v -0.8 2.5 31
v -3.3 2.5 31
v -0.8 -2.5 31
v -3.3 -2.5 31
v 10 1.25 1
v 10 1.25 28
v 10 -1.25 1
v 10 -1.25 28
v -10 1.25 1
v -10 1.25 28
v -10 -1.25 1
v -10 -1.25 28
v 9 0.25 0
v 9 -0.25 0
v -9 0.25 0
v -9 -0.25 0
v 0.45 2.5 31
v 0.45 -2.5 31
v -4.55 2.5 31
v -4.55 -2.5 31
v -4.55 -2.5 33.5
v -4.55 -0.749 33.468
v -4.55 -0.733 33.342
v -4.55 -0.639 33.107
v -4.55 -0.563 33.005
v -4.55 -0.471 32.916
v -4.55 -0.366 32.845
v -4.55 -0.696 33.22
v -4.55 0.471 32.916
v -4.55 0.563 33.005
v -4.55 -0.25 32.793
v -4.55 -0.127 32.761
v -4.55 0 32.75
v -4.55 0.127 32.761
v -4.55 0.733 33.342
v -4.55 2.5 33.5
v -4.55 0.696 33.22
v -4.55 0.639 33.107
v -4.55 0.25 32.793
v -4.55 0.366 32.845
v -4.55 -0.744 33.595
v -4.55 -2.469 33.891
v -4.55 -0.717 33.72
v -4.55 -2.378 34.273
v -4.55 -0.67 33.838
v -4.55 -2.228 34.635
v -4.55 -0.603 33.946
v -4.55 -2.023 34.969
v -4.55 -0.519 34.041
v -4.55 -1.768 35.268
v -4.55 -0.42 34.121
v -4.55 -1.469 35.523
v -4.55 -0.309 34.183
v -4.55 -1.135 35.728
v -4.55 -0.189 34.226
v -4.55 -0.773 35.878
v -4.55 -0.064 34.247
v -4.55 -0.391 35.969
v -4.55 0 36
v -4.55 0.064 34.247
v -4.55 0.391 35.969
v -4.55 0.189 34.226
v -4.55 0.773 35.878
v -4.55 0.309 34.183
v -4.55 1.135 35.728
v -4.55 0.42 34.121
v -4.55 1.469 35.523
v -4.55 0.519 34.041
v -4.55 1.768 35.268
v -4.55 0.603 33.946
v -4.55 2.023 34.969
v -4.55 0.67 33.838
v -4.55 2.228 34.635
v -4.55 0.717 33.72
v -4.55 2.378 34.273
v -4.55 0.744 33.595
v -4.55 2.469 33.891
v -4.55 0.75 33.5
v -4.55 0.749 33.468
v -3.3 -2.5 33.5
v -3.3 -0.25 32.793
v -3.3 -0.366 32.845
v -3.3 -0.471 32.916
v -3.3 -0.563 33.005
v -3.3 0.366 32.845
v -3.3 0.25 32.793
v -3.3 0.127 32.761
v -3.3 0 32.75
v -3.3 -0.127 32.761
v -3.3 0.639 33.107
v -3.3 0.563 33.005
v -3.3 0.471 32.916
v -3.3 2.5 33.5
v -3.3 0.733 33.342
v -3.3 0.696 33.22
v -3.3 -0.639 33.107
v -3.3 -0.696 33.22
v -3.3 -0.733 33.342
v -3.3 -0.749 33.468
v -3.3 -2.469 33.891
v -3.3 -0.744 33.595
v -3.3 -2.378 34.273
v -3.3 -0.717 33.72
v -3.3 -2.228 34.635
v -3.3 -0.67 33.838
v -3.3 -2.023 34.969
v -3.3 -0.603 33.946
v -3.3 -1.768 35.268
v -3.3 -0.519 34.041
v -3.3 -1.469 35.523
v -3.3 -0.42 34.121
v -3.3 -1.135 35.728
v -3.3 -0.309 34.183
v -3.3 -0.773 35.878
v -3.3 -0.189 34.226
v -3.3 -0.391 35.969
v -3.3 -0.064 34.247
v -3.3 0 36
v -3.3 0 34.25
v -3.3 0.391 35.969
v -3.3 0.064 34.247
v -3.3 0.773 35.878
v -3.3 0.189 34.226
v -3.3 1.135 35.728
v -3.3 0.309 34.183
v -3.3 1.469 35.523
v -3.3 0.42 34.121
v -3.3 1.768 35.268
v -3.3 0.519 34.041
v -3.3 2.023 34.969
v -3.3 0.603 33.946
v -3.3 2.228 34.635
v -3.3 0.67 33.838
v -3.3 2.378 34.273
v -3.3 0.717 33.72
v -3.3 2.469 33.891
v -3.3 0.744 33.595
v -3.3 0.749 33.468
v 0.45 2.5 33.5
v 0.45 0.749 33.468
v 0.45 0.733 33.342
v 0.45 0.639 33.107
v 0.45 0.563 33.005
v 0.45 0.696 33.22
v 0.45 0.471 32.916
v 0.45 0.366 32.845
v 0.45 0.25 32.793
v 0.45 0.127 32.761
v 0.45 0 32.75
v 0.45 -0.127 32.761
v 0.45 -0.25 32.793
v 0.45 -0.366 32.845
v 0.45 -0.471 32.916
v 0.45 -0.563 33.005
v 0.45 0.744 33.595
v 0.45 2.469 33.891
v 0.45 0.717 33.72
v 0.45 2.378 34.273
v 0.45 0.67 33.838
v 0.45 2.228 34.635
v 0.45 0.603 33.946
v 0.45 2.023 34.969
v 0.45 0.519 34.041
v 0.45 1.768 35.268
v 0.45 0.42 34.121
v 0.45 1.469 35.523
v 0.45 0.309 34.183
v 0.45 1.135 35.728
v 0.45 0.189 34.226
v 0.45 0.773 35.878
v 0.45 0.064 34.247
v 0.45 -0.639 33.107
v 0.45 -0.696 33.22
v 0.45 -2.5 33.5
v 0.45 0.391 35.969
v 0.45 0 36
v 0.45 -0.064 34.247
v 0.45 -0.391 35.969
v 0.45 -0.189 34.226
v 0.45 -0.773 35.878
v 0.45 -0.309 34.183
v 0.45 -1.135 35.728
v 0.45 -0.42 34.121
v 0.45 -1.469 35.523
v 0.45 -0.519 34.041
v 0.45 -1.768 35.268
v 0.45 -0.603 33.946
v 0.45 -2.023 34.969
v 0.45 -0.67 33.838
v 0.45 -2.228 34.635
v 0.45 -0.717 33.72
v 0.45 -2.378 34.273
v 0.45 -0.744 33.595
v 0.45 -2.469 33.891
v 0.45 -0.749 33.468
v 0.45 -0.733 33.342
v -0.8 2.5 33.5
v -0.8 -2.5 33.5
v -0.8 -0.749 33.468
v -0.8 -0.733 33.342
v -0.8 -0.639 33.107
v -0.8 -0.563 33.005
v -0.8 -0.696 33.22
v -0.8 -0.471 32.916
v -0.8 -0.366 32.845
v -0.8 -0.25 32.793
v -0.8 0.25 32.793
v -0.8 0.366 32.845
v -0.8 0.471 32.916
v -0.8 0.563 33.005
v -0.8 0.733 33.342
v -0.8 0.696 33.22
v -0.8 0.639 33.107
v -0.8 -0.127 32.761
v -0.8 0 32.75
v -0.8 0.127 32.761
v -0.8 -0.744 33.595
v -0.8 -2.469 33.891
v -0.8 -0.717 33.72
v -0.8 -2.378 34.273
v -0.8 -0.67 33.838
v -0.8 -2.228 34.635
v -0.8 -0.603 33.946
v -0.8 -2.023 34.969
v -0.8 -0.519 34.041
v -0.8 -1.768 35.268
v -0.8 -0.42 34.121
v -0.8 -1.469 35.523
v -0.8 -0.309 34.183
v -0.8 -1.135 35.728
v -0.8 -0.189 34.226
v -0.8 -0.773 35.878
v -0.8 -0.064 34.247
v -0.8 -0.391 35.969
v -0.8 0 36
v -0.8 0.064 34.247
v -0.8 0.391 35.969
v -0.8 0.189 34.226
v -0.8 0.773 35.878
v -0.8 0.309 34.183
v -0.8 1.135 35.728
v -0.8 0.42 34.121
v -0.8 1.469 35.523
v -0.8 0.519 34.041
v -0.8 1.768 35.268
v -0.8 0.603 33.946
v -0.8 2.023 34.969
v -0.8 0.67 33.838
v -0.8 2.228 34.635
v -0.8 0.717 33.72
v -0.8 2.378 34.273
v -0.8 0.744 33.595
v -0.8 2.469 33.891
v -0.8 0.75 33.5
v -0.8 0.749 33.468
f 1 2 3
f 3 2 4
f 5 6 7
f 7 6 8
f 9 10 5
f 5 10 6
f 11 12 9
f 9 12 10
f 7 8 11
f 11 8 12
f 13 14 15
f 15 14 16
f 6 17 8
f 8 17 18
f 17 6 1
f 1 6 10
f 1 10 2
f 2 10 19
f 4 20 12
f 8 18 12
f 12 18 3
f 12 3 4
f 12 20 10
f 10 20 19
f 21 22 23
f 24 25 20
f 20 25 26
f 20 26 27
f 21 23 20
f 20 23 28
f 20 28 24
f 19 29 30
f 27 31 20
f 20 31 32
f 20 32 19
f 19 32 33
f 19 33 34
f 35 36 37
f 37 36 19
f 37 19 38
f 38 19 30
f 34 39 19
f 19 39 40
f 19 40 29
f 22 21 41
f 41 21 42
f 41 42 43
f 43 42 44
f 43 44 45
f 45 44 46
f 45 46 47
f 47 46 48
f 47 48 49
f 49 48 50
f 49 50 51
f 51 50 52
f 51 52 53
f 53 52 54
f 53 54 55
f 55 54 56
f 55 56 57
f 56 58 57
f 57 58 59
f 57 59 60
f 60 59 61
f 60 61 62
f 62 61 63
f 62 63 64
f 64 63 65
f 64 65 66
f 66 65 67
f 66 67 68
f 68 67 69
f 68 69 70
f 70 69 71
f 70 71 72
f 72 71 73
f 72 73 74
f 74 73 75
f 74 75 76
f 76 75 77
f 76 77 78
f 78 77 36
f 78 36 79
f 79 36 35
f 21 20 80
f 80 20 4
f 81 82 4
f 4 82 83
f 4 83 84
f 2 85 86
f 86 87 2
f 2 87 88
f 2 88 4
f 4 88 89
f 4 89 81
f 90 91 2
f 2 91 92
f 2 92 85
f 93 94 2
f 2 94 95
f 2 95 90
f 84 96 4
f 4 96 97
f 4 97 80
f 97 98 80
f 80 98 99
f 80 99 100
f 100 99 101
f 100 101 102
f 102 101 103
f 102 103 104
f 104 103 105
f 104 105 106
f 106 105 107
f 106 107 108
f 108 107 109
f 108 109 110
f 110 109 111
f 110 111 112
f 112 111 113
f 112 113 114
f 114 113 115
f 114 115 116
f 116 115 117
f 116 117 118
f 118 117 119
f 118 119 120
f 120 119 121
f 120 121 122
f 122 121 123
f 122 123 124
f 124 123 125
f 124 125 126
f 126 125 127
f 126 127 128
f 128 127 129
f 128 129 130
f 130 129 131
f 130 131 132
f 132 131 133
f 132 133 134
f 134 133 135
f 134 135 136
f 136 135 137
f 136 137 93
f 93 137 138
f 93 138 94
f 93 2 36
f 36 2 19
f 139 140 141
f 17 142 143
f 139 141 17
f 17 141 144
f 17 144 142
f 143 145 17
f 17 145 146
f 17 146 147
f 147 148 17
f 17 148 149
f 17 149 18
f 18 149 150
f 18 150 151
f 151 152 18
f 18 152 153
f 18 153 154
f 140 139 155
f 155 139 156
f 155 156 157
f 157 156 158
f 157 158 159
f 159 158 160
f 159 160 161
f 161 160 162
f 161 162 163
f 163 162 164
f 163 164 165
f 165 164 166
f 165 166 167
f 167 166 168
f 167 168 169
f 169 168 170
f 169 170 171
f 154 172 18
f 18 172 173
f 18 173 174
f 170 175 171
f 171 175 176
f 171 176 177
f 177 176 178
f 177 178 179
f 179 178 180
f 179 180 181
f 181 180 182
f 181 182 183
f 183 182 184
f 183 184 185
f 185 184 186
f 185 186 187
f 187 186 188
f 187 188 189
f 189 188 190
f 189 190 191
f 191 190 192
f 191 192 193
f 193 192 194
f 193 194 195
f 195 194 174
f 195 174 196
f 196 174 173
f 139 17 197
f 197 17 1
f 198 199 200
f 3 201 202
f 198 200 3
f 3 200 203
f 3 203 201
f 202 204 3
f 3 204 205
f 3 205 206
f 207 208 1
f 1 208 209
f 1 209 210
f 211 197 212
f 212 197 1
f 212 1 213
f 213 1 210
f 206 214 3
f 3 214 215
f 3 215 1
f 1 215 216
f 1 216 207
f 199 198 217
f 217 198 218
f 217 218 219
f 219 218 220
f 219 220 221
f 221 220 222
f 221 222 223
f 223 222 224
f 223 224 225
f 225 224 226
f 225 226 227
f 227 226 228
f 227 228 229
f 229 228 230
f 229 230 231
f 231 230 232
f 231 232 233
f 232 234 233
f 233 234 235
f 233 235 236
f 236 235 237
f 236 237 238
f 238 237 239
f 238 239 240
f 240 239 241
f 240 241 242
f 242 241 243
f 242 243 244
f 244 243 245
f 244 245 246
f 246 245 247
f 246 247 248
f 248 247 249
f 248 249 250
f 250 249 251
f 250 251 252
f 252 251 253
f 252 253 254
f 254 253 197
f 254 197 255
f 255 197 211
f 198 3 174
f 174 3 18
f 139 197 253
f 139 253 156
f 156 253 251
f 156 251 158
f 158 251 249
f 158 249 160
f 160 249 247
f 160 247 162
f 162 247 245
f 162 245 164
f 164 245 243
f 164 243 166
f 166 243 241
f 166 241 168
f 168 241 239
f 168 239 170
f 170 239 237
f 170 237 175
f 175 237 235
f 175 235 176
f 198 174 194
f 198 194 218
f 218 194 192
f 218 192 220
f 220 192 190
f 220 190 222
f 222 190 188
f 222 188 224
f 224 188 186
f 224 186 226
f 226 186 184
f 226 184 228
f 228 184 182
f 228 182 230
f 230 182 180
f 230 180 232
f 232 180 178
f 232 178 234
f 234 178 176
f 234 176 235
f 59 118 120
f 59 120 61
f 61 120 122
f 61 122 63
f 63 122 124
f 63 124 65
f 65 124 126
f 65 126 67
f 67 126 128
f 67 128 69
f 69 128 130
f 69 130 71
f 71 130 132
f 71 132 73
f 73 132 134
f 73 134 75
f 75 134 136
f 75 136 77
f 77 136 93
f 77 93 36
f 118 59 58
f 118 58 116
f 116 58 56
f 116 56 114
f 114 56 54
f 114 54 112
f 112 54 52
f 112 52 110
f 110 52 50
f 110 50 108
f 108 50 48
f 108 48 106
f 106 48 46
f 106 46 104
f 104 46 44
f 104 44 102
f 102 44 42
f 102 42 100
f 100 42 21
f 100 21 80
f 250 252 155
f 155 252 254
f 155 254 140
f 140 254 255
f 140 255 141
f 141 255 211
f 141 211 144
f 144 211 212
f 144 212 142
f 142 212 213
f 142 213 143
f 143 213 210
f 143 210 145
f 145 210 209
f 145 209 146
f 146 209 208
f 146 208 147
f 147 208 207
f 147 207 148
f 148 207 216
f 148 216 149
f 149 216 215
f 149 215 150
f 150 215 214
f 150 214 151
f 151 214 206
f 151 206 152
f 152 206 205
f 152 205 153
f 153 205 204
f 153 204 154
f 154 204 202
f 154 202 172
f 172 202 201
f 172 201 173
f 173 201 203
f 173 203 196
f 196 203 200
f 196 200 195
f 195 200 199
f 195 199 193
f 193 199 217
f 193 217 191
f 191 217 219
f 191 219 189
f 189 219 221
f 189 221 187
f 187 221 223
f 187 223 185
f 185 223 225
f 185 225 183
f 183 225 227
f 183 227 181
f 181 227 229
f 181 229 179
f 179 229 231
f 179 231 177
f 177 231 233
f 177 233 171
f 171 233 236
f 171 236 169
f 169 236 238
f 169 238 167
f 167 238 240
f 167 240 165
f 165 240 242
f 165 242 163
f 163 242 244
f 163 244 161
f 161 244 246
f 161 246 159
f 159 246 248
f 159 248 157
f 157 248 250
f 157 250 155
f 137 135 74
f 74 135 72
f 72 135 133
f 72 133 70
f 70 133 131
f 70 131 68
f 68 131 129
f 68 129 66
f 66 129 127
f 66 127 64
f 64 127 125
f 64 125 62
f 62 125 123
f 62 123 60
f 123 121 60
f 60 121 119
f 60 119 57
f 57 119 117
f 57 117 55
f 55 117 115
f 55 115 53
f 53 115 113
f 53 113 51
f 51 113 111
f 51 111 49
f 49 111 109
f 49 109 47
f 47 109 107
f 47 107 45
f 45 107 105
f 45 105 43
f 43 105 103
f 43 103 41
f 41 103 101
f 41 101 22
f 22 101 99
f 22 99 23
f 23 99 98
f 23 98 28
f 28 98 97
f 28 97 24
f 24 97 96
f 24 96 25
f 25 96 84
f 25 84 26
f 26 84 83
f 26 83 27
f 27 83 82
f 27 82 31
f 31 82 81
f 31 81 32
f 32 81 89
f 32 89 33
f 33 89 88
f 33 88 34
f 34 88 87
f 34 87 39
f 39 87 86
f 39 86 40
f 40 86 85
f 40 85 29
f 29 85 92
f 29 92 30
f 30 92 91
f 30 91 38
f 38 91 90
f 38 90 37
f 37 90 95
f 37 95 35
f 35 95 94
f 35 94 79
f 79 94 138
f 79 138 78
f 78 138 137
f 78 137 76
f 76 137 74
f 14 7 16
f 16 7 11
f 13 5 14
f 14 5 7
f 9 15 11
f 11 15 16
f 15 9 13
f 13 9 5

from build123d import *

# Parameters (mm, degrees)
SKETCH1_W           = 20
SKETCH1_H           = 2.5
BOSS_EXTRUDE1_DEPTH = 28
SKETCH7_W           = 1.25
SKETCH7_H           = 5
BOSS_EXTRUDE3_DEPTH = 5
FILLET1_R           = 2.5
SKETCH8_R           = 0.75
CUT_EXTRUDE3_DEPTH  = 38.569302663
CHAMFER1_SIZE       = 1


with BuildPart() as part:
    # Sketch1 → Boss-Extrude1 (new body)
    with BuildSketch(Plane.XY):
        Rectangle(SKETCH1_W, SKETCH1_H)
    extrude(amount=BOSS_EXTRUDE1_DEPTH)

    # Sketch3 → section 0 of loft1
    with BuildSketch(Plane.XY.offset(31), mode=Mode.PRIVATE) as loft1_s0:
        with BuildLine():
            Line((-4.55, 2.5), (0.45, 2.5))
            Line((0.45, 2.5), (0.45, -2.5))
            Line((0.45, -2.5), (-4.55, -2.5))
            Line((-4.55, -2.5), (-4.55, 2.5))
        make_face()
    # loft up to a face of the part (loft1)
    loft([loft1_s0.sketch, part.faces().sort_by_distance((0, 0, 28))[0]])

    # Sketch7 → Boss-Extrude3 (add)
    with BuildSketch(Plane.XY.offset(31)):
        with Locations((-3.925, 0)):
            Rectangle(SKETCH7_W, SKETCH7_H)
        with Locations((-0.175, 0)):
            Rectangle(SKETCH7_W, SKETCH7_H)
    extrude(amount=BOSS_EXTRUDE3_DEPTH)

    # Fillet1
    fillet1_edges = [part.edges().sort_by_distance(p)[0] for p in [
        (-0.175, -2.5, 36),
        (-3.925, -2.5, 36),
        (-3.925, 2.5, 36),
        (-0.175, 2.5, 36),
    ]]
    fillet(fillet1_edges, radius=FILLET1_R - 0.0001)  # a hair under: the kernel refuses the full size

    # Sketch8 → Cut-Extrude3 (cut, through all)
    with BuildSketch(Plane(origin=(0.45, 0, 0), x_dir=(0, 0, -1), z_dir=(1, 0, 0))):
        with Locations((-33.5, 0)):
            Circle(SKETCH8_R)
    extrude(amount=-CUT_EXTRUDE3_DEPTH, mode=Mode.SUBTRACT)

    # Chamfer1
    chamfer1_edges = [part.edges().sort_by_distance(p)[0] for p in [
        (0, -1.25, 0),
        (-10, 0, 0),
        (0, 1.25, 0),
        (10, 0, 0),
    ]]
    chamfer(chamfer1_edges, length=CHAMFER1_SIZE)


solid = part.part
